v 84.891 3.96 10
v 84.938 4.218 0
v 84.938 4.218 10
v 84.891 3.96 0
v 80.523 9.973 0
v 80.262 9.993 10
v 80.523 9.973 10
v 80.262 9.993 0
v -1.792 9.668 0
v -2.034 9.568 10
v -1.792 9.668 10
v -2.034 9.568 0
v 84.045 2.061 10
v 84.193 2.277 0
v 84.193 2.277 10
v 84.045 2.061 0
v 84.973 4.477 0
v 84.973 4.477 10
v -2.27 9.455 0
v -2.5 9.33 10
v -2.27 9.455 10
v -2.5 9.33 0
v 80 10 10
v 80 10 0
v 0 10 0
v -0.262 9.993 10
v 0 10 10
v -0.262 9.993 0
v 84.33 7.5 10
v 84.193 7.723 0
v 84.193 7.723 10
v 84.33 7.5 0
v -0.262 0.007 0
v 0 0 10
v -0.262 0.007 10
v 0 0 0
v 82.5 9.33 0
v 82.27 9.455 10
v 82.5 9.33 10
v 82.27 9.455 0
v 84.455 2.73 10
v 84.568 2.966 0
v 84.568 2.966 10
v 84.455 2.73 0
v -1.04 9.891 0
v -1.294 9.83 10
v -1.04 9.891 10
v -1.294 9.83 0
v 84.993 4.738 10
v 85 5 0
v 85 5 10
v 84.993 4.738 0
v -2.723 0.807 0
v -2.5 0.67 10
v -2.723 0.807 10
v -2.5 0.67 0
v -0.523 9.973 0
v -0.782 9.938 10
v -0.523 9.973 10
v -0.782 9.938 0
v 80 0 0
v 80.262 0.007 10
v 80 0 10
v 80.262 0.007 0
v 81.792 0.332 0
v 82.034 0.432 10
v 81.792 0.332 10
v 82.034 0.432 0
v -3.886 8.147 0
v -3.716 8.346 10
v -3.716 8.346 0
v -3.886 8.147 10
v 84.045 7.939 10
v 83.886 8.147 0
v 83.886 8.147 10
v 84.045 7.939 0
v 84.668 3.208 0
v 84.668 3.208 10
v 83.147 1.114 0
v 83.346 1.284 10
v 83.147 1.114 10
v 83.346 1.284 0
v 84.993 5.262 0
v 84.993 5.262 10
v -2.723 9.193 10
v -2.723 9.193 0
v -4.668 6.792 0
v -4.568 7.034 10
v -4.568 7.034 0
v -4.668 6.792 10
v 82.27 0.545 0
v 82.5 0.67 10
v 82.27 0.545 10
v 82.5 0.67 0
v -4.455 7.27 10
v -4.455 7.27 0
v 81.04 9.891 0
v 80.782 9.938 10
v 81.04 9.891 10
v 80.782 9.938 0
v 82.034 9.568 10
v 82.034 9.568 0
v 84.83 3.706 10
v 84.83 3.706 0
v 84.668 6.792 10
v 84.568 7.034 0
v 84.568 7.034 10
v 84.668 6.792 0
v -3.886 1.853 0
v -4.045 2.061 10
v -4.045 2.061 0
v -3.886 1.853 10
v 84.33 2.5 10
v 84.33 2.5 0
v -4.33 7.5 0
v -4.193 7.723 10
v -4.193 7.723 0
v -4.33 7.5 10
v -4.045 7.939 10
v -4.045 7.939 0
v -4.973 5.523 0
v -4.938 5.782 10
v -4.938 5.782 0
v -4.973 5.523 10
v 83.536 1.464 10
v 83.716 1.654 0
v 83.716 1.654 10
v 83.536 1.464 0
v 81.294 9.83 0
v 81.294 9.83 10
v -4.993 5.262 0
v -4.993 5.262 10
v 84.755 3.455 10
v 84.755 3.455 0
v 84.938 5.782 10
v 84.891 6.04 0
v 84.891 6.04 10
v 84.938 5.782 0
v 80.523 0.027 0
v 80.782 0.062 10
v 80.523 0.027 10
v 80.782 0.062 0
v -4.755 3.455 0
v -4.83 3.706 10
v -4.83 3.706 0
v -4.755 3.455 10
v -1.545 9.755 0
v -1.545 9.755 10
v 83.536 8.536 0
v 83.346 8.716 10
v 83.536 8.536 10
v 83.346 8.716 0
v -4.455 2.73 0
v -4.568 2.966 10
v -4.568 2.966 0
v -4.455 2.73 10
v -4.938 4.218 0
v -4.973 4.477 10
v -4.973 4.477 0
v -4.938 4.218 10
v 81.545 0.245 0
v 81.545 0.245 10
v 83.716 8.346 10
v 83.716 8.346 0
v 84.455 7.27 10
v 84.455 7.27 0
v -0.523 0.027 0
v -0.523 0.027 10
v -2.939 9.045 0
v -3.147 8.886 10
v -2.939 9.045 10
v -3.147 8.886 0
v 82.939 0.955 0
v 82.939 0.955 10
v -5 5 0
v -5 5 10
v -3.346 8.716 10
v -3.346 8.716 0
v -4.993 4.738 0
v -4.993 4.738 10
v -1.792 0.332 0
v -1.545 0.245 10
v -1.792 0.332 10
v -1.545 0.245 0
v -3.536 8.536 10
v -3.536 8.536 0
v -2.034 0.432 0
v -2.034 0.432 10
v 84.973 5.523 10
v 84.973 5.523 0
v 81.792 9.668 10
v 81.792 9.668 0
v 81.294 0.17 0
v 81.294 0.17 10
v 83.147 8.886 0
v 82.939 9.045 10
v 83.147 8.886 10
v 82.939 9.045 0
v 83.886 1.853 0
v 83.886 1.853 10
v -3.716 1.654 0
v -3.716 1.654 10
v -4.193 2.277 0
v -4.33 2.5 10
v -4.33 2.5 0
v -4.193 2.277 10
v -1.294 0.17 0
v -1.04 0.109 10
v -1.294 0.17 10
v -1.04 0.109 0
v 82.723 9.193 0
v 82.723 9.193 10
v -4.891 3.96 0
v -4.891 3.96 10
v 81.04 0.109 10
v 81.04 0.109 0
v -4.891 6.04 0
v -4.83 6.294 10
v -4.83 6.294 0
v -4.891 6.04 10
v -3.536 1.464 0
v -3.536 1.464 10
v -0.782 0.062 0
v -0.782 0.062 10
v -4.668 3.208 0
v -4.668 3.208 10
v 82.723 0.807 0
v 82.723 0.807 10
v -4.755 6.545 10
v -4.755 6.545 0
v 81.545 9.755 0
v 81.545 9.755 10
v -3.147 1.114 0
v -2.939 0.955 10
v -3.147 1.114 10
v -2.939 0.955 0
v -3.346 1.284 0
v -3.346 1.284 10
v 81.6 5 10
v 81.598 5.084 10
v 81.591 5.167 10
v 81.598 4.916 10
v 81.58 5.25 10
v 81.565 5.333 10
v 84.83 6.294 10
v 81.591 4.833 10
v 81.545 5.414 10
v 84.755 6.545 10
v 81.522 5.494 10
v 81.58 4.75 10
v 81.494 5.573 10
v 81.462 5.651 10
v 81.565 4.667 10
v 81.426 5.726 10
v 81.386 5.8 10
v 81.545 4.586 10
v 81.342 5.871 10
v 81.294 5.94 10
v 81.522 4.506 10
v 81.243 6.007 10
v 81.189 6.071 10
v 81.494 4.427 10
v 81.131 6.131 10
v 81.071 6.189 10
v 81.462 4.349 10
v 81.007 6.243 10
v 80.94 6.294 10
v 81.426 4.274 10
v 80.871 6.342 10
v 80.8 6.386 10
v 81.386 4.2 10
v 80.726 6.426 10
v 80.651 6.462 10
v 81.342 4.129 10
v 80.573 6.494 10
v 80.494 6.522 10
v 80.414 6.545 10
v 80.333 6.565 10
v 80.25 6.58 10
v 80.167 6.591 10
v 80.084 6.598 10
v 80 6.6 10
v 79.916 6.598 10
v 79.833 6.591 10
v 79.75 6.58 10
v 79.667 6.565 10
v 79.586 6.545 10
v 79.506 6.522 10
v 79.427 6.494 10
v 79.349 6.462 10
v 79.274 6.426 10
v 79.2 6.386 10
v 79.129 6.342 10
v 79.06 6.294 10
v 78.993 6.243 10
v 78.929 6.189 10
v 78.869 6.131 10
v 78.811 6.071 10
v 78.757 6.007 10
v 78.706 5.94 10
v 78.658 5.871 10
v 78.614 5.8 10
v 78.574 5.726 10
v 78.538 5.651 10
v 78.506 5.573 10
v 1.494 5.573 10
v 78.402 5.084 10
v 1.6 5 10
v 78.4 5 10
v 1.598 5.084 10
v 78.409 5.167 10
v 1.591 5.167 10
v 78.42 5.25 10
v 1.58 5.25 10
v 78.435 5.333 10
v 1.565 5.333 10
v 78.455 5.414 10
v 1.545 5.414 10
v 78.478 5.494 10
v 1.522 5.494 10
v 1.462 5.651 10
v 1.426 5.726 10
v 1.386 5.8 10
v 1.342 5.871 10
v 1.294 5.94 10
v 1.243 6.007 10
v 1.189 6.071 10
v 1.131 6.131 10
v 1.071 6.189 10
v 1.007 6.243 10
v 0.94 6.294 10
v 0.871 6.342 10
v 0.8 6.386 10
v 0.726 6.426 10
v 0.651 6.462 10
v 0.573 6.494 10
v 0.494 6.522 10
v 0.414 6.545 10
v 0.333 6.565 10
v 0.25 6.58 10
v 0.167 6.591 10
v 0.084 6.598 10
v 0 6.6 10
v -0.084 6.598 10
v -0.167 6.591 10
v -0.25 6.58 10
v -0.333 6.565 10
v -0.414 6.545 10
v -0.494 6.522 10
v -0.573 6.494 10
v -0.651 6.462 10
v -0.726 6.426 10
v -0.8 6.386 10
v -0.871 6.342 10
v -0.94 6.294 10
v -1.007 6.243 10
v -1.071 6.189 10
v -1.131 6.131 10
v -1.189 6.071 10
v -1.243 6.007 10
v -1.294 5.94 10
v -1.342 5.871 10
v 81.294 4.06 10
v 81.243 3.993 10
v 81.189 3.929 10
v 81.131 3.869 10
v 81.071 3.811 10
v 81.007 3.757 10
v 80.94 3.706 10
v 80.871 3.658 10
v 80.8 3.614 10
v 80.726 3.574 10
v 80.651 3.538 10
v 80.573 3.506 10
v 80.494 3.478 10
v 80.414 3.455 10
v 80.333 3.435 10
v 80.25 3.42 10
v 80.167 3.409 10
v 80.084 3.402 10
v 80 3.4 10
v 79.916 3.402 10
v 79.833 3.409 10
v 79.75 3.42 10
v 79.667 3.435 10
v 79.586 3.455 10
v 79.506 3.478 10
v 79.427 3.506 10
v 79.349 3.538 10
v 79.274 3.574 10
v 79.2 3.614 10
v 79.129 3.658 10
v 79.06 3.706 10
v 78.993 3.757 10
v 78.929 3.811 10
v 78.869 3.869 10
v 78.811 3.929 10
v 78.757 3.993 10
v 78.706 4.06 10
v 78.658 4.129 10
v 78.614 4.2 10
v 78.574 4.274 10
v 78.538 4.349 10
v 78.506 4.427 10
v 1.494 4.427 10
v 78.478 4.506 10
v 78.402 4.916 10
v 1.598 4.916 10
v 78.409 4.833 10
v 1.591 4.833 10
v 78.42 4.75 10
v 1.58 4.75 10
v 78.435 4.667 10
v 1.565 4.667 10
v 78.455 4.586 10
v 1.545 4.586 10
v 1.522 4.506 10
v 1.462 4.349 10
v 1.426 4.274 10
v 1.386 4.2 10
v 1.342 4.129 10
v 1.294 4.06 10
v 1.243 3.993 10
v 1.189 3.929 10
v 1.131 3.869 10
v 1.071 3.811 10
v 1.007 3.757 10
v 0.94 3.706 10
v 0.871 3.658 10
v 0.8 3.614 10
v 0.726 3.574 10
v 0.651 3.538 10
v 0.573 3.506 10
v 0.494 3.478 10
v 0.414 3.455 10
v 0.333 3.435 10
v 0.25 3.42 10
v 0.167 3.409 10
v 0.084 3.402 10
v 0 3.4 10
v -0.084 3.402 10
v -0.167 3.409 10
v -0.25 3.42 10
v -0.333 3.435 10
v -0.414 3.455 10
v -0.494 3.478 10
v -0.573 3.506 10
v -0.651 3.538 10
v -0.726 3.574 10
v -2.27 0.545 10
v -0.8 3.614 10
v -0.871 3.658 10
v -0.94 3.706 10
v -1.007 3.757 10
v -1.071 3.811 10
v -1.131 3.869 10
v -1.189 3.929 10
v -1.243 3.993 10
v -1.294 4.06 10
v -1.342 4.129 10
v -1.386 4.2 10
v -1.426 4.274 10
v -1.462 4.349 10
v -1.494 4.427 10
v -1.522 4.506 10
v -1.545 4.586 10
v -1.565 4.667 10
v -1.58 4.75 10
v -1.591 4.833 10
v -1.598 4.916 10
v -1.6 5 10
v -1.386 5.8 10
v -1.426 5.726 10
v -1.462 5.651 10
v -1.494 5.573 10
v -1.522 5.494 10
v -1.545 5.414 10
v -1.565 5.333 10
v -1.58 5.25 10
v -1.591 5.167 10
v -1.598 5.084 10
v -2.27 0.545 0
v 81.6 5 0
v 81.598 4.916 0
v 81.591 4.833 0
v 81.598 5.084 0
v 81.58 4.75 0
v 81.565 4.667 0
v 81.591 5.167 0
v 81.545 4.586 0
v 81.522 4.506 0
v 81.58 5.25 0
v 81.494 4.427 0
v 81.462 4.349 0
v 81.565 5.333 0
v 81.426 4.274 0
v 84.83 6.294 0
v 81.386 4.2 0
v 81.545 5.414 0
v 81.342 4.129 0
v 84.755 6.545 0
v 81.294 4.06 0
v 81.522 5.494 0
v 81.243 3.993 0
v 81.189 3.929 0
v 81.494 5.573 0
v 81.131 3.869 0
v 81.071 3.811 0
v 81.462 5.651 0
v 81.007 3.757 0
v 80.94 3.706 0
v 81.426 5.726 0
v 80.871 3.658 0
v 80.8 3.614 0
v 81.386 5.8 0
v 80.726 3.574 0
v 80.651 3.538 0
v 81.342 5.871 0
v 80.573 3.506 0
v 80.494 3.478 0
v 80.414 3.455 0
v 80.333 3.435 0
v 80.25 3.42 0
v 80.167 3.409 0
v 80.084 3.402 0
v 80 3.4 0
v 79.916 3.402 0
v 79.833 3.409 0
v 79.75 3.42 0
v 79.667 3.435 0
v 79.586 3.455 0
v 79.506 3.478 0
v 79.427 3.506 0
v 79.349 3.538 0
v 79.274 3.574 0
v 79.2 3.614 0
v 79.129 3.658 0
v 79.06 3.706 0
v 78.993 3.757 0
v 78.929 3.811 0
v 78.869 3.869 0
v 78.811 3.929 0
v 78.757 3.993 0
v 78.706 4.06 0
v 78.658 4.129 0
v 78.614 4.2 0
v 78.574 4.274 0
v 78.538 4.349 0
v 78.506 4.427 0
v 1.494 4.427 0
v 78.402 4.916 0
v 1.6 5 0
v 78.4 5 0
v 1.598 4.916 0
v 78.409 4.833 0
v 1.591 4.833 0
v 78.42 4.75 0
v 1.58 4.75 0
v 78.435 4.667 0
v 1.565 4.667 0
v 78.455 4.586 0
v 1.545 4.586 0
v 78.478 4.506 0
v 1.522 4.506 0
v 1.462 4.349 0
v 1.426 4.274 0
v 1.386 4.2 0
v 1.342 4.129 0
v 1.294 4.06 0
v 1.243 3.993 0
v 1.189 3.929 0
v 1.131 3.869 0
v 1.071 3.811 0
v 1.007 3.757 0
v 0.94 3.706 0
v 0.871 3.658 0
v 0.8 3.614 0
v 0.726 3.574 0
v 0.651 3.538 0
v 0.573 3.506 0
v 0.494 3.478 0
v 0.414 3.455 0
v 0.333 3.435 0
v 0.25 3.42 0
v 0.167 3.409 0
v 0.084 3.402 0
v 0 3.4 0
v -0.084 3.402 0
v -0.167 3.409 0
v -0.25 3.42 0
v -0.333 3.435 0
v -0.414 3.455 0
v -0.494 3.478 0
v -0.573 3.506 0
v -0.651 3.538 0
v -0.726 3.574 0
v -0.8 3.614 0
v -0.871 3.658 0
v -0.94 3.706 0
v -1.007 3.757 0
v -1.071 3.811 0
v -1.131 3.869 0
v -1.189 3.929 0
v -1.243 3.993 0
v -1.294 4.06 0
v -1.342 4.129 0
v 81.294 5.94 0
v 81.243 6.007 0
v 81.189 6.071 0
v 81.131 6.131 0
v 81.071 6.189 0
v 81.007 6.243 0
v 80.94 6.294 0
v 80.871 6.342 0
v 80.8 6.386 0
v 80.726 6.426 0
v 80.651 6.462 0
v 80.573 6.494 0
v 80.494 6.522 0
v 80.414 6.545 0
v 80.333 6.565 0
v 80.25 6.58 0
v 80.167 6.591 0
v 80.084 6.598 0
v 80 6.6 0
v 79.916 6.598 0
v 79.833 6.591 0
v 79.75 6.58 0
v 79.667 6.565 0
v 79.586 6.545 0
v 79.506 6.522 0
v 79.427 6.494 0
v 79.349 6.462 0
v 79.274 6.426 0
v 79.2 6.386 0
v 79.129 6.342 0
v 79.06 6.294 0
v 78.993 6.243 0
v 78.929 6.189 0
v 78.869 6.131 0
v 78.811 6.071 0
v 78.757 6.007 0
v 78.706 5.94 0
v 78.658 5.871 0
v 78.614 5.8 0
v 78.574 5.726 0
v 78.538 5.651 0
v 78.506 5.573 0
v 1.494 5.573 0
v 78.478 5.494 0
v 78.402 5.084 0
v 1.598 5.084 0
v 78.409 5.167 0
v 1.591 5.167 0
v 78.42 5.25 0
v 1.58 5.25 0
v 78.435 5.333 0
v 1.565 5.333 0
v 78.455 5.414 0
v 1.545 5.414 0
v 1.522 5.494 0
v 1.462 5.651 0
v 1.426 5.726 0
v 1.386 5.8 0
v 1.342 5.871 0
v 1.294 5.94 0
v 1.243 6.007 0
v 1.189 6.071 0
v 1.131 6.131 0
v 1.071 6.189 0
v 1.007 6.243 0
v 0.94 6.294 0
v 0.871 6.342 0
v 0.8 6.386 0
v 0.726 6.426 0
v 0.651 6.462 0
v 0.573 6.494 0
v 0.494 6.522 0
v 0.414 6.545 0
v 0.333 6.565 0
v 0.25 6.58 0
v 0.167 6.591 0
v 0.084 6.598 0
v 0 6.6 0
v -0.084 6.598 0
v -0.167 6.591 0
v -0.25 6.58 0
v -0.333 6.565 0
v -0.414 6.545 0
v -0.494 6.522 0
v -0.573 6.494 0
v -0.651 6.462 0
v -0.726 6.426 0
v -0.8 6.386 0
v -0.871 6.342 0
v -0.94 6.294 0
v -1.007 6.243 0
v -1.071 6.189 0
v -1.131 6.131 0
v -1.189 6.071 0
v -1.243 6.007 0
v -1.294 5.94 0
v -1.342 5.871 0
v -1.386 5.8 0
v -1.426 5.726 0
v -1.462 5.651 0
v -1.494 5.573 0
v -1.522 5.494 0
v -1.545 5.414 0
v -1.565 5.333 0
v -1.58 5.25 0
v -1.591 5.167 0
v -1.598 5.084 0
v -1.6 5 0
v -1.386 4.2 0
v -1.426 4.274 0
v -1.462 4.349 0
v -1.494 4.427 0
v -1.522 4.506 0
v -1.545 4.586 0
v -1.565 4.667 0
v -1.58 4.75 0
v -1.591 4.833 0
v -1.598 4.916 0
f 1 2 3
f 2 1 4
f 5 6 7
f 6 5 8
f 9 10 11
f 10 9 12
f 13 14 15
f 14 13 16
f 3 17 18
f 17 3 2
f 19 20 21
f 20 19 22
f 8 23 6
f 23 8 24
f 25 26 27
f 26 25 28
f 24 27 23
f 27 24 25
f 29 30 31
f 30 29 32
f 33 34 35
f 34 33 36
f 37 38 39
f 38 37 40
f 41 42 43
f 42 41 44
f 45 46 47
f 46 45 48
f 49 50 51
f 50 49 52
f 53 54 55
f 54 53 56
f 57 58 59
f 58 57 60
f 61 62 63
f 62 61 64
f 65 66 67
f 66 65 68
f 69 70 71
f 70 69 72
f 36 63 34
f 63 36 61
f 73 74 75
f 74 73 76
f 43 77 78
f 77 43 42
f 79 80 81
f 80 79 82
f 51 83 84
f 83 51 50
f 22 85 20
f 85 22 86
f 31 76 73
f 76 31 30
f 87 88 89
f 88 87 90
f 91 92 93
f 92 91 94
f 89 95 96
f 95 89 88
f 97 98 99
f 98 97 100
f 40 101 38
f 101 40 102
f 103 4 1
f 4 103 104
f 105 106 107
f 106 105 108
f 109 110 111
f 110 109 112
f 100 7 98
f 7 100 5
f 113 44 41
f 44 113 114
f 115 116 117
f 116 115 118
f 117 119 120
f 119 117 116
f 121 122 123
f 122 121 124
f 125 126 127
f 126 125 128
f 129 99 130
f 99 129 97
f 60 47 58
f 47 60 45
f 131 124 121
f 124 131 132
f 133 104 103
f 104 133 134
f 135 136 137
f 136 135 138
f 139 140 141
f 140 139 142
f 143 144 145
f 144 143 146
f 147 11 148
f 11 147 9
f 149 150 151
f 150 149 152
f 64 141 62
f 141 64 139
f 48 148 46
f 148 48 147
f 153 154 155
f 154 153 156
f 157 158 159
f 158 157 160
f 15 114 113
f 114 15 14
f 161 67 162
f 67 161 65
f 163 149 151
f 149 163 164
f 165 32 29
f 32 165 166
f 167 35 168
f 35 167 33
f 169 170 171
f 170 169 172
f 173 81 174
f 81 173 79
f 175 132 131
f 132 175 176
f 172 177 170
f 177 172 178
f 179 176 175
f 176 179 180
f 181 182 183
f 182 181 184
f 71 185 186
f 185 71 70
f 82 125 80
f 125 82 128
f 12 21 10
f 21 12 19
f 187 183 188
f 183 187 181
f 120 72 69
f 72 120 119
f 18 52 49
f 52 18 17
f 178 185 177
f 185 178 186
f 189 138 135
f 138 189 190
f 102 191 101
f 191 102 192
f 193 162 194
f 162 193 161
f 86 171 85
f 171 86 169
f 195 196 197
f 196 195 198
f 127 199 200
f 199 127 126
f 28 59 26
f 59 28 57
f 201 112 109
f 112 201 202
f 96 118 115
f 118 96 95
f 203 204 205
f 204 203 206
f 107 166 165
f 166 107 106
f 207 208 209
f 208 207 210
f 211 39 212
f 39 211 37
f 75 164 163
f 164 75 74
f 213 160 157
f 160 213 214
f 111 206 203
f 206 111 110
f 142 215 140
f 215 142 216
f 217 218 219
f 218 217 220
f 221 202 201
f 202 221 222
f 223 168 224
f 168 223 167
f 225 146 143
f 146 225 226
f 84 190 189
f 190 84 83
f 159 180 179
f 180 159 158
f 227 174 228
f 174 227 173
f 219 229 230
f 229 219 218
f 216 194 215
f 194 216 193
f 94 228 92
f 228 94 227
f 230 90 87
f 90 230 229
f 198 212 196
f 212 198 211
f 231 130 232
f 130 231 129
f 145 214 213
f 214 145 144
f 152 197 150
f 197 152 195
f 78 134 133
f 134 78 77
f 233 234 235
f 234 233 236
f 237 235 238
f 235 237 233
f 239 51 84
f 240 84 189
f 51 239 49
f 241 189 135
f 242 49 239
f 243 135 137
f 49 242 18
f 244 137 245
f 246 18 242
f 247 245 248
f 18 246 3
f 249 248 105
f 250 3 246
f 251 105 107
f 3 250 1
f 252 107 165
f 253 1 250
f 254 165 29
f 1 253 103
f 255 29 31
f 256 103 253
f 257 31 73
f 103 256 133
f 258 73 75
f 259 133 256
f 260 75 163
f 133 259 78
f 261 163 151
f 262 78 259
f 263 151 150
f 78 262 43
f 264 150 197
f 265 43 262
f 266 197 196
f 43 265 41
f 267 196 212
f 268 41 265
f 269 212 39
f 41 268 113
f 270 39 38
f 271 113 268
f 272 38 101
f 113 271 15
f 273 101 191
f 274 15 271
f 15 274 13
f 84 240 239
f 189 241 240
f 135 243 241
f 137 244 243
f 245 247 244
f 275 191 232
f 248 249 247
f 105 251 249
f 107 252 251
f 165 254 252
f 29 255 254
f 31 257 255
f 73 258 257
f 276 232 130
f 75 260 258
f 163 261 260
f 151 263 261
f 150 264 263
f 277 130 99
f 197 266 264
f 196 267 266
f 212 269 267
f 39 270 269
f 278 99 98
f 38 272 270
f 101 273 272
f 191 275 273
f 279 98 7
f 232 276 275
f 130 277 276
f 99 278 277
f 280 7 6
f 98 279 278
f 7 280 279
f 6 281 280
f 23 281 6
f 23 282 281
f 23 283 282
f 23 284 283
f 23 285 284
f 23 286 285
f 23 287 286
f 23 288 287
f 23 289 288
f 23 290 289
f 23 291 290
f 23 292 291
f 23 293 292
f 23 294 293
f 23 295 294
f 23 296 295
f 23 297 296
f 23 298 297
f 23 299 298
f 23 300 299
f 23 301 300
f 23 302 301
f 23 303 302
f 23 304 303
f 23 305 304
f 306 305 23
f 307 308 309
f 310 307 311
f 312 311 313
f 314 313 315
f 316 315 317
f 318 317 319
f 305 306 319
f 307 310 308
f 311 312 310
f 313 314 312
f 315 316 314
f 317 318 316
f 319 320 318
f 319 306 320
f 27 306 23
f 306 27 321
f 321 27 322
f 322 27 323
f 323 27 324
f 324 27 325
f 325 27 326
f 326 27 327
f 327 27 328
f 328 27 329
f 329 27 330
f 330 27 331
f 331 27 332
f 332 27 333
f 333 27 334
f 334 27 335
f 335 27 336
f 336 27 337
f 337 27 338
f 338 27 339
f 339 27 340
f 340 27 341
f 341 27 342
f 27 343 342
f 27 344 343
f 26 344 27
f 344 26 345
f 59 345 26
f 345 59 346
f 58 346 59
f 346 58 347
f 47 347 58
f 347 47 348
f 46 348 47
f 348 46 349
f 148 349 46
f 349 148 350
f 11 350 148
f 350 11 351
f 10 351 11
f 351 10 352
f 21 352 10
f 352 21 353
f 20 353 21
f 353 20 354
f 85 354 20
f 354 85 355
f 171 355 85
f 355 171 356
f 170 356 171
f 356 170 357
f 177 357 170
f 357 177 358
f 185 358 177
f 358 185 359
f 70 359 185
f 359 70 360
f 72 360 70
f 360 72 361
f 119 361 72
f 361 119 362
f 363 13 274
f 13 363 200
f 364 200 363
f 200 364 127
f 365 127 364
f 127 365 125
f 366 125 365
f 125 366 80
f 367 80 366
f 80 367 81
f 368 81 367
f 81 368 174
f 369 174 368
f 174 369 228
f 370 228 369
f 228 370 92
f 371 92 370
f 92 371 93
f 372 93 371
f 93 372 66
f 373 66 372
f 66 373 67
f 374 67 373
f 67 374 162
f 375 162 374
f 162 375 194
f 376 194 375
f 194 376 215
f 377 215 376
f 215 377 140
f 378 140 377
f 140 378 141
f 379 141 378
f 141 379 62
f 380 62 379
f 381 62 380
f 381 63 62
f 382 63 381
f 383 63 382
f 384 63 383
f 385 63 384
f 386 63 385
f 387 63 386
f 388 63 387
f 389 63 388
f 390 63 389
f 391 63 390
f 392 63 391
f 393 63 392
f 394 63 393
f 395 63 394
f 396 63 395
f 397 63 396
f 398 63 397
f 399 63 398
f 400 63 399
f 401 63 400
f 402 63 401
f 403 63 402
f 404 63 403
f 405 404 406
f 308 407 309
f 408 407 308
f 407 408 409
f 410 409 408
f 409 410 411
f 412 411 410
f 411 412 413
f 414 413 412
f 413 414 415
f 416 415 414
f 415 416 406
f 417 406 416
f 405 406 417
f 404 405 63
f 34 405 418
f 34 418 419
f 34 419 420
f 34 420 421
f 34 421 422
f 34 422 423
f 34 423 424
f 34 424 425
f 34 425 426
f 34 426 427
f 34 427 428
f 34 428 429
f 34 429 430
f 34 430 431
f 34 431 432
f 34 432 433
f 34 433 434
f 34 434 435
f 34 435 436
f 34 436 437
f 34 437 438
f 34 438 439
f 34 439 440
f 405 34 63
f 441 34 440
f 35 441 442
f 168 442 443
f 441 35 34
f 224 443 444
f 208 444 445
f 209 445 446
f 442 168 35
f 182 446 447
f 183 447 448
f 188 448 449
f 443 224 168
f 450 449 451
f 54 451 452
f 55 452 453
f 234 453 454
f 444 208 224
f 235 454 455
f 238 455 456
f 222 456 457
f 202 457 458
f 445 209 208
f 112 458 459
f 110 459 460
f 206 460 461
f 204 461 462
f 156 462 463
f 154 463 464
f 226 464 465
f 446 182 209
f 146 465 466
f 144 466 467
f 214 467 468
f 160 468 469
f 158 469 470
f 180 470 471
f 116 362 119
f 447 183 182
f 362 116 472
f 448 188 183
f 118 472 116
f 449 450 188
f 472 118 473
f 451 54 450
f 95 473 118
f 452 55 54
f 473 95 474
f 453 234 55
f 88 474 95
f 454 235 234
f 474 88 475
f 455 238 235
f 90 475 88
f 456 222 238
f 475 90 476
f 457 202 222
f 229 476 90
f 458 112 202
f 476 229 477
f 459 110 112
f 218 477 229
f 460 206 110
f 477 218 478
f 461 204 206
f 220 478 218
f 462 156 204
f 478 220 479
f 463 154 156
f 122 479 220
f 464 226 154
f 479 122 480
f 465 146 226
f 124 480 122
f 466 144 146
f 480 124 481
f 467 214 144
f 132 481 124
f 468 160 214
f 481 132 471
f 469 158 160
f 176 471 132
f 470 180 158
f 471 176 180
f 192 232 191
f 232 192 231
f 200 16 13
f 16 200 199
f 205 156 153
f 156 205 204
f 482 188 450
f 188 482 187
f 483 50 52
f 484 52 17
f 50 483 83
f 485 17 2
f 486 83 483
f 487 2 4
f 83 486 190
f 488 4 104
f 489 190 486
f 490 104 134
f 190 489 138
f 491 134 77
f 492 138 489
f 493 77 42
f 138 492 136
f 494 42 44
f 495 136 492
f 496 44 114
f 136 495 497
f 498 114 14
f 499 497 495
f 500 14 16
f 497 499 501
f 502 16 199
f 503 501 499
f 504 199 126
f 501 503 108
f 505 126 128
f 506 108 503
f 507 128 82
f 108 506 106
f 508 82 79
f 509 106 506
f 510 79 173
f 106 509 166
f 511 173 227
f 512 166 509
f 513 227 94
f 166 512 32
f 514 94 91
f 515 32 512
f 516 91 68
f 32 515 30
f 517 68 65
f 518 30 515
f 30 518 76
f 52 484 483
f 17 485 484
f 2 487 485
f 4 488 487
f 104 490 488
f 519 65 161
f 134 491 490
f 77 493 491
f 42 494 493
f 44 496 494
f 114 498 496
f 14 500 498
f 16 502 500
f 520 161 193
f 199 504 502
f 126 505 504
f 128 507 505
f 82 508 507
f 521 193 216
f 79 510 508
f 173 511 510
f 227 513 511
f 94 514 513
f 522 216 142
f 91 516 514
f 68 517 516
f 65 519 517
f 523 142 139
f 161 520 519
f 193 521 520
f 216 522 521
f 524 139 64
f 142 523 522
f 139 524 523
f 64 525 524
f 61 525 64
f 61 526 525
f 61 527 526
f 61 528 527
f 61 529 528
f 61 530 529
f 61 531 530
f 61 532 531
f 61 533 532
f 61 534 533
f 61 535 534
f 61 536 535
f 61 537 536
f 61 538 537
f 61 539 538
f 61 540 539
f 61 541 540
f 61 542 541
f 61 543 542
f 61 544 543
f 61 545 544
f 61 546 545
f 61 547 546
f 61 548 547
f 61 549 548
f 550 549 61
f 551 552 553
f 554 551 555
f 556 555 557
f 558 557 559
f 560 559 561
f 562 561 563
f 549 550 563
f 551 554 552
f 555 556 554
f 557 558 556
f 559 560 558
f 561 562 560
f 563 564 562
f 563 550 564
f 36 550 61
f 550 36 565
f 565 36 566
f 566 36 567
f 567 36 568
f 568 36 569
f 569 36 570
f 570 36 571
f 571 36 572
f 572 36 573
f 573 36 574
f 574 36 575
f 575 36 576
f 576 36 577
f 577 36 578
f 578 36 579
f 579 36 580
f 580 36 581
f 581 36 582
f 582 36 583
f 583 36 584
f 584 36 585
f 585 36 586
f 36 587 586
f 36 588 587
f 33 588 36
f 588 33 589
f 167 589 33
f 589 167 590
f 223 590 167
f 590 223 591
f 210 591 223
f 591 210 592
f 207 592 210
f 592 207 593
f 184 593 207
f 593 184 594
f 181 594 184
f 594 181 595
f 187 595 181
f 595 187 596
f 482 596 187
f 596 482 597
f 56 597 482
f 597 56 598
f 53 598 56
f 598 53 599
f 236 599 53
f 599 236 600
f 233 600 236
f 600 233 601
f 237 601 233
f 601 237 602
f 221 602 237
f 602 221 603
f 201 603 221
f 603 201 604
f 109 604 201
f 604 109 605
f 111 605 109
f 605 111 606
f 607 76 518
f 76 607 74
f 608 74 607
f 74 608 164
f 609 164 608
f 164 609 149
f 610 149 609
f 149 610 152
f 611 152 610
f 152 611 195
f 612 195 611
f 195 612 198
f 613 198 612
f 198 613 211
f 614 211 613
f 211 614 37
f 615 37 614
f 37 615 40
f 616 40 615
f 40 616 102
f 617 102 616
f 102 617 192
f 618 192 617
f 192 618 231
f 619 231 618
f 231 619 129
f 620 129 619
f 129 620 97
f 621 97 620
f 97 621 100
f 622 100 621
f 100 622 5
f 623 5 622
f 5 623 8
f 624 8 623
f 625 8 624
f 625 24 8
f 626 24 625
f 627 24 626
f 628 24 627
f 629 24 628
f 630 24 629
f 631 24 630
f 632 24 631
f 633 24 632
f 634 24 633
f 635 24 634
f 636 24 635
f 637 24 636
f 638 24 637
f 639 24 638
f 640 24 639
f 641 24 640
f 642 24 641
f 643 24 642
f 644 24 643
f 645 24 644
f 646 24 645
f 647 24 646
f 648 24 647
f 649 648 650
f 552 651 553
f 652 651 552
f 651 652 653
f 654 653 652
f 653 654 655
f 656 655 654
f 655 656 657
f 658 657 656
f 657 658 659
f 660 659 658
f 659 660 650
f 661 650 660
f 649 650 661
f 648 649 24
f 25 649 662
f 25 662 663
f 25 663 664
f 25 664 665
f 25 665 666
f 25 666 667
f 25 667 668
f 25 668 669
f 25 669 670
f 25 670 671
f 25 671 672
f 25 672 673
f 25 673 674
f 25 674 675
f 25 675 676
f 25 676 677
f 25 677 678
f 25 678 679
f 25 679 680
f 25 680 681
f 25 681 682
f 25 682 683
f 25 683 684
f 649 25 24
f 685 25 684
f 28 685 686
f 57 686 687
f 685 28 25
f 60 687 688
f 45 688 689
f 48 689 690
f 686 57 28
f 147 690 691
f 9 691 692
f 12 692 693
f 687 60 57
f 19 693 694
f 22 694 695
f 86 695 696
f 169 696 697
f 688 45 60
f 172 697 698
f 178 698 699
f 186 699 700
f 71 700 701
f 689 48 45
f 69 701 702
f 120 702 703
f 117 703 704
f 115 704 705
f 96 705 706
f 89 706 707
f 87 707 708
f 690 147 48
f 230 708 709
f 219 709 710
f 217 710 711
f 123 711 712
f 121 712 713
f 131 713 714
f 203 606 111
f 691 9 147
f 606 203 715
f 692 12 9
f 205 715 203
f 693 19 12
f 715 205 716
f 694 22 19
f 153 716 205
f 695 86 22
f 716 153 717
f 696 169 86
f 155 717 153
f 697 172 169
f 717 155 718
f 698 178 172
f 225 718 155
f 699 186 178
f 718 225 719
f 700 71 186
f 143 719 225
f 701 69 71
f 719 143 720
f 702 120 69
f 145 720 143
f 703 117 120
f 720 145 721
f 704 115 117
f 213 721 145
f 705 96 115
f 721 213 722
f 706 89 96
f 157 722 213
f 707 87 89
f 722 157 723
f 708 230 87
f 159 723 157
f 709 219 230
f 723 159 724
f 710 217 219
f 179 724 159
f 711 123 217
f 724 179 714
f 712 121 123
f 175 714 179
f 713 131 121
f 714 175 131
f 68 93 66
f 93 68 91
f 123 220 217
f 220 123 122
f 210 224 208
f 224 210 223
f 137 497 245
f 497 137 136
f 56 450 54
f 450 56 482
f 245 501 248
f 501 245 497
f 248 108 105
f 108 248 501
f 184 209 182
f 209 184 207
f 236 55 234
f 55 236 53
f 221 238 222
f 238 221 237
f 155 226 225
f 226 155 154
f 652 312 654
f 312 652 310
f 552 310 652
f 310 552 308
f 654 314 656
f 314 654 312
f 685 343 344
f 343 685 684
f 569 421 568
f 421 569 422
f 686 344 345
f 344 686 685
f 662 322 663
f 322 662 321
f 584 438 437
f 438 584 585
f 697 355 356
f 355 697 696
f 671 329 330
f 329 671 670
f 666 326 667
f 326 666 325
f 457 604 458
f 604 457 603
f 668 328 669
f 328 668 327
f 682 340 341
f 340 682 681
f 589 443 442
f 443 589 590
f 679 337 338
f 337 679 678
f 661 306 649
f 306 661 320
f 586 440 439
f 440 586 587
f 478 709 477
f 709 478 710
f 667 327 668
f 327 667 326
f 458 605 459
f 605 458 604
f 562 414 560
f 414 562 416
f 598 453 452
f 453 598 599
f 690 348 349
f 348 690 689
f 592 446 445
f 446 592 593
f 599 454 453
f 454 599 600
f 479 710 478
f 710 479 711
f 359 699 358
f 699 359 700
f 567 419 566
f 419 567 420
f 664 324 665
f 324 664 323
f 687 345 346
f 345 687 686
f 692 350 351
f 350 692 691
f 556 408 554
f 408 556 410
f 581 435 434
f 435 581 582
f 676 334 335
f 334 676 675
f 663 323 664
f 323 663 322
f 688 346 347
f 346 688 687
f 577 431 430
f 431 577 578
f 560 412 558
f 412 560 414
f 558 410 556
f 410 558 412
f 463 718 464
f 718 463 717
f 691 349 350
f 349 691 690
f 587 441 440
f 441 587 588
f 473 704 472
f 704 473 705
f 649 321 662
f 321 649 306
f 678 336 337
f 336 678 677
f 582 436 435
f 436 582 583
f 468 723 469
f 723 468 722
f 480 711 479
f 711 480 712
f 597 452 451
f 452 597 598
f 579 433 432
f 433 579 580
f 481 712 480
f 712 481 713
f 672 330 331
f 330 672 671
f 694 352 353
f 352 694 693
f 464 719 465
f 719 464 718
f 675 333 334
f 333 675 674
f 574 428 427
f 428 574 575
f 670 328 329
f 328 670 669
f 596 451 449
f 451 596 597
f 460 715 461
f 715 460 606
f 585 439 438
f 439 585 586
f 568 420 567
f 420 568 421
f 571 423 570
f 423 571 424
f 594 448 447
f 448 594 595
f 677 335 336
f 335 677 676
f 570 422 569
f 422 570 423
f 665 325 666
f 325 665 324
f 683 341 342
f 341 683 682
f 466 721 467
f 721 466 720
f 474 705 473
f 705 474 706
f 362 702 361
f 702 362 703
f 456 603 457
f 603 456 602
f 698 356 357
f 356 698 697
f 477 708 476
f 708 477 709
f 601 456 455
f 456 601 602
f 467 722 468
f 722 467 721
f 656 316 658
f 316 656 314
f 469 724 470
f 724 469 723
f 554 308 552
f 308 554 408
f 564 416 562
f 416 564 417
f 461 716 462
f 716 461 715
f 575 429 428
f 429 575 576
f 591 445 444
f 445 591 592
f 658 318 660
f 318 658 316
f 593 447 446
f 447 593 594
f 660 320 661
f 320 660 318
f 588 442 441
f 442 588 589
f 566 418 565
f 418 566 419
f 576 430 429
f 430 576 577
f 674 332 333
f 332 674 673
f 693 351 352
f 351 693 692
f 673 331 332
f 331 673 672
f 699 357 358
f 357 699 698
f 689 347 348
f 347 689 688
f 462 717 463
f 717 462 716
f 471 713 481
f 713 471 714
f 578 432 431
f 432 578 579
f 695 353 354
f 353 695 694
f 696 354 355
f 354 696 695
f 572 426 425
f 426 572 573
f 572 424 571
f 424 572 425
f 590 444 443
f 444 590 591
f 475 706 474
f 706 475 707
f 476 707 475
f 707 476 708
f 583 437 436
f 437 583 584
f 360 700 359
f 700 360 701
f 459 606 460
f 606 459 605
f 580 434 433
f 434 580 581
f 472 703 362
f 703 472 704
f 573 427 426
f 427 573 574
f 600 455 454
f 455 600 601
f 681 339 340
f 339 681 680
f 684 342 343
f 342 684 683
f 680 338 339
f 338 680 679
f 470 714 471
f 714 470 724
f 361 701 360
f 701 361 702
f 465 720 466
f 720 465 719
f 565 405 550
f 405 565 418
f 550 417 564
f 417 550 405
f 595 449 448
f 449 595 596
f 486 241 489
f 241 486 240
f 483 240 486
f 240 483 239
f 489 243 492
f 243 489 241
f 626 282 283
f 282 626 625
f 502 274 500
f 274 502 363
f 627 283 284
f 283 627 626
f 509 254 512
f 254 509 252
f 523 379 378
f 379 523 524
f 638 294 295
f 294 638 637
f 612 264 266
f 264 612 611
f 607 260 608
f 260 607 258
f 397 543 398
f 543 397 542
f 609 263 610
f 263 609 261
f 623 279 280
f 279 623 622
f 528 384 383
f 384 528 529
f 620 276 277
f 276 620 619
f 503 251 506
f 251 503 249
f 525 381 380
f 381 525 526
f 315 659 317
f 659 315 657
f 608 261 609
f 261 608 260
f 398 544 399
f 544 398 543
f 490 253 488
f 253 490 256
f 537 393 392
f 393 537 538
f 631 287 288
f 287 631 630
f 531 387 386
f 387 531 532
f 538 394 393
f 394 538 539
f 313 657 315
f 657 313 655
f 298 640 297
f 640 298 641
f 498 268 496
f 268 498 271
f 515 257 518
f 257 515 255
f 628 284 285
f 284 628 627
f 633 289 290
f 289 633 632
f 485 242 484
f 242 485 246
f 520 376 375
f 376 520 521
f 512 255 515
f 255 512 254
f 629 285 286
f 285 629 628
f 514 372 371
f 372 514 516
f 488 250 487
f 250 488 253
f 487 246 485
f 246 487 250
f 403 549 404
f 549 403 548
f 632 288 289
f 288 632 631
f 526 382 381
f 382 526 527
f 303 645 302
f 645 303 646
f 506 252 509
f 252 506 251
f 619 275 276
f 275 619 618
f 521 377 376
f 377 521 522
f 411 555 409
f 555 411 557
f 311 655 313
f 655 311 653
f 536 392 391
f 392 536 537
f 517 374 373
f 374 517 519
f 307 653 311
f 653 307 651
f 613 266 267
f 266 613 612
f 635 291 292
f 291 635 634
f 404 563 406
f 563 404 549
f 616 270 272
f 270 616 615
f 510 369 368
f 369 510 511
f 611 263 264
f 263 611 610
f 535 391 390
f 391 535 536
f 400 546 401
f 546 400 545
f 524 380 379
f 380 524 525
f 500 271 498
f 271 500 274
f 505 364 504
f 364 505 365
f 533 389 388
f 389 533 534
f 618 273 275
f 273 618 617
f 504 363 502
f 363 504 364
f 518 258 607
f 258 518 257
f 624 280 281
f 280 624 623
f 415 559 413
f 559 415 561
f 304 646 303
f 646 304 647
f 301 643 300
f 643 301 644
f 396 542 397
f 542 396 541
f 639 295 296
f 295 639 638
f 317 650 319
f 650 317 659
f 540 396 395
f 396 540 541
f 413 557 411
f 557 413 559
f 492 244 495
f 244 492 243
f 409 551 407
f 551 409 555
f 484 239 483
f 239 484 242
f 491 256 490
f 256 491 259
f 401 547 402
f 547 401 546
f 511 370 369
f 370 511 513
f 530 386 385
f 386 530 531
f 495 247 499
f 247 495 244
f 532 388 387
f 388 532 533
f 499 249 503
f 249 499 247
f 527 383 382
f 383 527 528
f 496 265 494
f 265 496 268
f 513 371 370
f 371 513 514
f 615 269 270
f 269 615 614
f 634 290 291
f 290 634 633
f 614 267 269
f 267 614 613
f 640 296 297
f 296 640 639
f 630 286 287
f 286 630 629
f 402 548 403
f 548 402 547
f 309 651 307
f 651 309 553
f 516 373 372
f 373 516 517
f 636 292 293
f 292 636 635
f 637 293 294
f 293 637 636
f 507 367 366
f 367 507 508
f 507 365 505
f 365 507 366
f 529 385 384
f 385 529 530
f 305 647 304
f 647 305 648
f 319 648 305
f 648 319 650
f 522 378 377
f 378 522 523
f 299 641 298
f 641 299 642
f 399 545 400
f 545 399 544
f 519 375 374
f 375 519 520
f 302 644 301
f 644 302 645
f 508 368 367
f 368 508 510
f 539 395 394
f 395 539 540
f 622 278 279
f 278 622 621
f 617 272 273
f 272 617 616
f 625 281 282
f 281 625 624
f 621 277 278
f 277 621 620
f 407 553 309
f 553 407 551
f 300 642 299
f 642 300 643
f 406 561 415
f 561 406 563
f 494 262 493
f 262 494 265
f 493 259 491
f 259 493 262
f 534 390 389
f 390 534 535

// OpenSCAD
//ArticArm1602_sect.scad - Articulating Arm section for 1602 LCD
//2022 Gregory A Sanders
//
//
$fn=120;
module arm(){
    difference(){
    hull(){
        translate([0,5,0,])
        cylinder(10,d=10);
        cube([80,10,10]);
        translate([80,5,0])
        cylinder(10,d=10);
    }
    translate([0,5,-5])
    cylinder(20,d=3.2);
    translate([80,5,-5])
    cylinder(20,d=3.2);
}
}
arm();
